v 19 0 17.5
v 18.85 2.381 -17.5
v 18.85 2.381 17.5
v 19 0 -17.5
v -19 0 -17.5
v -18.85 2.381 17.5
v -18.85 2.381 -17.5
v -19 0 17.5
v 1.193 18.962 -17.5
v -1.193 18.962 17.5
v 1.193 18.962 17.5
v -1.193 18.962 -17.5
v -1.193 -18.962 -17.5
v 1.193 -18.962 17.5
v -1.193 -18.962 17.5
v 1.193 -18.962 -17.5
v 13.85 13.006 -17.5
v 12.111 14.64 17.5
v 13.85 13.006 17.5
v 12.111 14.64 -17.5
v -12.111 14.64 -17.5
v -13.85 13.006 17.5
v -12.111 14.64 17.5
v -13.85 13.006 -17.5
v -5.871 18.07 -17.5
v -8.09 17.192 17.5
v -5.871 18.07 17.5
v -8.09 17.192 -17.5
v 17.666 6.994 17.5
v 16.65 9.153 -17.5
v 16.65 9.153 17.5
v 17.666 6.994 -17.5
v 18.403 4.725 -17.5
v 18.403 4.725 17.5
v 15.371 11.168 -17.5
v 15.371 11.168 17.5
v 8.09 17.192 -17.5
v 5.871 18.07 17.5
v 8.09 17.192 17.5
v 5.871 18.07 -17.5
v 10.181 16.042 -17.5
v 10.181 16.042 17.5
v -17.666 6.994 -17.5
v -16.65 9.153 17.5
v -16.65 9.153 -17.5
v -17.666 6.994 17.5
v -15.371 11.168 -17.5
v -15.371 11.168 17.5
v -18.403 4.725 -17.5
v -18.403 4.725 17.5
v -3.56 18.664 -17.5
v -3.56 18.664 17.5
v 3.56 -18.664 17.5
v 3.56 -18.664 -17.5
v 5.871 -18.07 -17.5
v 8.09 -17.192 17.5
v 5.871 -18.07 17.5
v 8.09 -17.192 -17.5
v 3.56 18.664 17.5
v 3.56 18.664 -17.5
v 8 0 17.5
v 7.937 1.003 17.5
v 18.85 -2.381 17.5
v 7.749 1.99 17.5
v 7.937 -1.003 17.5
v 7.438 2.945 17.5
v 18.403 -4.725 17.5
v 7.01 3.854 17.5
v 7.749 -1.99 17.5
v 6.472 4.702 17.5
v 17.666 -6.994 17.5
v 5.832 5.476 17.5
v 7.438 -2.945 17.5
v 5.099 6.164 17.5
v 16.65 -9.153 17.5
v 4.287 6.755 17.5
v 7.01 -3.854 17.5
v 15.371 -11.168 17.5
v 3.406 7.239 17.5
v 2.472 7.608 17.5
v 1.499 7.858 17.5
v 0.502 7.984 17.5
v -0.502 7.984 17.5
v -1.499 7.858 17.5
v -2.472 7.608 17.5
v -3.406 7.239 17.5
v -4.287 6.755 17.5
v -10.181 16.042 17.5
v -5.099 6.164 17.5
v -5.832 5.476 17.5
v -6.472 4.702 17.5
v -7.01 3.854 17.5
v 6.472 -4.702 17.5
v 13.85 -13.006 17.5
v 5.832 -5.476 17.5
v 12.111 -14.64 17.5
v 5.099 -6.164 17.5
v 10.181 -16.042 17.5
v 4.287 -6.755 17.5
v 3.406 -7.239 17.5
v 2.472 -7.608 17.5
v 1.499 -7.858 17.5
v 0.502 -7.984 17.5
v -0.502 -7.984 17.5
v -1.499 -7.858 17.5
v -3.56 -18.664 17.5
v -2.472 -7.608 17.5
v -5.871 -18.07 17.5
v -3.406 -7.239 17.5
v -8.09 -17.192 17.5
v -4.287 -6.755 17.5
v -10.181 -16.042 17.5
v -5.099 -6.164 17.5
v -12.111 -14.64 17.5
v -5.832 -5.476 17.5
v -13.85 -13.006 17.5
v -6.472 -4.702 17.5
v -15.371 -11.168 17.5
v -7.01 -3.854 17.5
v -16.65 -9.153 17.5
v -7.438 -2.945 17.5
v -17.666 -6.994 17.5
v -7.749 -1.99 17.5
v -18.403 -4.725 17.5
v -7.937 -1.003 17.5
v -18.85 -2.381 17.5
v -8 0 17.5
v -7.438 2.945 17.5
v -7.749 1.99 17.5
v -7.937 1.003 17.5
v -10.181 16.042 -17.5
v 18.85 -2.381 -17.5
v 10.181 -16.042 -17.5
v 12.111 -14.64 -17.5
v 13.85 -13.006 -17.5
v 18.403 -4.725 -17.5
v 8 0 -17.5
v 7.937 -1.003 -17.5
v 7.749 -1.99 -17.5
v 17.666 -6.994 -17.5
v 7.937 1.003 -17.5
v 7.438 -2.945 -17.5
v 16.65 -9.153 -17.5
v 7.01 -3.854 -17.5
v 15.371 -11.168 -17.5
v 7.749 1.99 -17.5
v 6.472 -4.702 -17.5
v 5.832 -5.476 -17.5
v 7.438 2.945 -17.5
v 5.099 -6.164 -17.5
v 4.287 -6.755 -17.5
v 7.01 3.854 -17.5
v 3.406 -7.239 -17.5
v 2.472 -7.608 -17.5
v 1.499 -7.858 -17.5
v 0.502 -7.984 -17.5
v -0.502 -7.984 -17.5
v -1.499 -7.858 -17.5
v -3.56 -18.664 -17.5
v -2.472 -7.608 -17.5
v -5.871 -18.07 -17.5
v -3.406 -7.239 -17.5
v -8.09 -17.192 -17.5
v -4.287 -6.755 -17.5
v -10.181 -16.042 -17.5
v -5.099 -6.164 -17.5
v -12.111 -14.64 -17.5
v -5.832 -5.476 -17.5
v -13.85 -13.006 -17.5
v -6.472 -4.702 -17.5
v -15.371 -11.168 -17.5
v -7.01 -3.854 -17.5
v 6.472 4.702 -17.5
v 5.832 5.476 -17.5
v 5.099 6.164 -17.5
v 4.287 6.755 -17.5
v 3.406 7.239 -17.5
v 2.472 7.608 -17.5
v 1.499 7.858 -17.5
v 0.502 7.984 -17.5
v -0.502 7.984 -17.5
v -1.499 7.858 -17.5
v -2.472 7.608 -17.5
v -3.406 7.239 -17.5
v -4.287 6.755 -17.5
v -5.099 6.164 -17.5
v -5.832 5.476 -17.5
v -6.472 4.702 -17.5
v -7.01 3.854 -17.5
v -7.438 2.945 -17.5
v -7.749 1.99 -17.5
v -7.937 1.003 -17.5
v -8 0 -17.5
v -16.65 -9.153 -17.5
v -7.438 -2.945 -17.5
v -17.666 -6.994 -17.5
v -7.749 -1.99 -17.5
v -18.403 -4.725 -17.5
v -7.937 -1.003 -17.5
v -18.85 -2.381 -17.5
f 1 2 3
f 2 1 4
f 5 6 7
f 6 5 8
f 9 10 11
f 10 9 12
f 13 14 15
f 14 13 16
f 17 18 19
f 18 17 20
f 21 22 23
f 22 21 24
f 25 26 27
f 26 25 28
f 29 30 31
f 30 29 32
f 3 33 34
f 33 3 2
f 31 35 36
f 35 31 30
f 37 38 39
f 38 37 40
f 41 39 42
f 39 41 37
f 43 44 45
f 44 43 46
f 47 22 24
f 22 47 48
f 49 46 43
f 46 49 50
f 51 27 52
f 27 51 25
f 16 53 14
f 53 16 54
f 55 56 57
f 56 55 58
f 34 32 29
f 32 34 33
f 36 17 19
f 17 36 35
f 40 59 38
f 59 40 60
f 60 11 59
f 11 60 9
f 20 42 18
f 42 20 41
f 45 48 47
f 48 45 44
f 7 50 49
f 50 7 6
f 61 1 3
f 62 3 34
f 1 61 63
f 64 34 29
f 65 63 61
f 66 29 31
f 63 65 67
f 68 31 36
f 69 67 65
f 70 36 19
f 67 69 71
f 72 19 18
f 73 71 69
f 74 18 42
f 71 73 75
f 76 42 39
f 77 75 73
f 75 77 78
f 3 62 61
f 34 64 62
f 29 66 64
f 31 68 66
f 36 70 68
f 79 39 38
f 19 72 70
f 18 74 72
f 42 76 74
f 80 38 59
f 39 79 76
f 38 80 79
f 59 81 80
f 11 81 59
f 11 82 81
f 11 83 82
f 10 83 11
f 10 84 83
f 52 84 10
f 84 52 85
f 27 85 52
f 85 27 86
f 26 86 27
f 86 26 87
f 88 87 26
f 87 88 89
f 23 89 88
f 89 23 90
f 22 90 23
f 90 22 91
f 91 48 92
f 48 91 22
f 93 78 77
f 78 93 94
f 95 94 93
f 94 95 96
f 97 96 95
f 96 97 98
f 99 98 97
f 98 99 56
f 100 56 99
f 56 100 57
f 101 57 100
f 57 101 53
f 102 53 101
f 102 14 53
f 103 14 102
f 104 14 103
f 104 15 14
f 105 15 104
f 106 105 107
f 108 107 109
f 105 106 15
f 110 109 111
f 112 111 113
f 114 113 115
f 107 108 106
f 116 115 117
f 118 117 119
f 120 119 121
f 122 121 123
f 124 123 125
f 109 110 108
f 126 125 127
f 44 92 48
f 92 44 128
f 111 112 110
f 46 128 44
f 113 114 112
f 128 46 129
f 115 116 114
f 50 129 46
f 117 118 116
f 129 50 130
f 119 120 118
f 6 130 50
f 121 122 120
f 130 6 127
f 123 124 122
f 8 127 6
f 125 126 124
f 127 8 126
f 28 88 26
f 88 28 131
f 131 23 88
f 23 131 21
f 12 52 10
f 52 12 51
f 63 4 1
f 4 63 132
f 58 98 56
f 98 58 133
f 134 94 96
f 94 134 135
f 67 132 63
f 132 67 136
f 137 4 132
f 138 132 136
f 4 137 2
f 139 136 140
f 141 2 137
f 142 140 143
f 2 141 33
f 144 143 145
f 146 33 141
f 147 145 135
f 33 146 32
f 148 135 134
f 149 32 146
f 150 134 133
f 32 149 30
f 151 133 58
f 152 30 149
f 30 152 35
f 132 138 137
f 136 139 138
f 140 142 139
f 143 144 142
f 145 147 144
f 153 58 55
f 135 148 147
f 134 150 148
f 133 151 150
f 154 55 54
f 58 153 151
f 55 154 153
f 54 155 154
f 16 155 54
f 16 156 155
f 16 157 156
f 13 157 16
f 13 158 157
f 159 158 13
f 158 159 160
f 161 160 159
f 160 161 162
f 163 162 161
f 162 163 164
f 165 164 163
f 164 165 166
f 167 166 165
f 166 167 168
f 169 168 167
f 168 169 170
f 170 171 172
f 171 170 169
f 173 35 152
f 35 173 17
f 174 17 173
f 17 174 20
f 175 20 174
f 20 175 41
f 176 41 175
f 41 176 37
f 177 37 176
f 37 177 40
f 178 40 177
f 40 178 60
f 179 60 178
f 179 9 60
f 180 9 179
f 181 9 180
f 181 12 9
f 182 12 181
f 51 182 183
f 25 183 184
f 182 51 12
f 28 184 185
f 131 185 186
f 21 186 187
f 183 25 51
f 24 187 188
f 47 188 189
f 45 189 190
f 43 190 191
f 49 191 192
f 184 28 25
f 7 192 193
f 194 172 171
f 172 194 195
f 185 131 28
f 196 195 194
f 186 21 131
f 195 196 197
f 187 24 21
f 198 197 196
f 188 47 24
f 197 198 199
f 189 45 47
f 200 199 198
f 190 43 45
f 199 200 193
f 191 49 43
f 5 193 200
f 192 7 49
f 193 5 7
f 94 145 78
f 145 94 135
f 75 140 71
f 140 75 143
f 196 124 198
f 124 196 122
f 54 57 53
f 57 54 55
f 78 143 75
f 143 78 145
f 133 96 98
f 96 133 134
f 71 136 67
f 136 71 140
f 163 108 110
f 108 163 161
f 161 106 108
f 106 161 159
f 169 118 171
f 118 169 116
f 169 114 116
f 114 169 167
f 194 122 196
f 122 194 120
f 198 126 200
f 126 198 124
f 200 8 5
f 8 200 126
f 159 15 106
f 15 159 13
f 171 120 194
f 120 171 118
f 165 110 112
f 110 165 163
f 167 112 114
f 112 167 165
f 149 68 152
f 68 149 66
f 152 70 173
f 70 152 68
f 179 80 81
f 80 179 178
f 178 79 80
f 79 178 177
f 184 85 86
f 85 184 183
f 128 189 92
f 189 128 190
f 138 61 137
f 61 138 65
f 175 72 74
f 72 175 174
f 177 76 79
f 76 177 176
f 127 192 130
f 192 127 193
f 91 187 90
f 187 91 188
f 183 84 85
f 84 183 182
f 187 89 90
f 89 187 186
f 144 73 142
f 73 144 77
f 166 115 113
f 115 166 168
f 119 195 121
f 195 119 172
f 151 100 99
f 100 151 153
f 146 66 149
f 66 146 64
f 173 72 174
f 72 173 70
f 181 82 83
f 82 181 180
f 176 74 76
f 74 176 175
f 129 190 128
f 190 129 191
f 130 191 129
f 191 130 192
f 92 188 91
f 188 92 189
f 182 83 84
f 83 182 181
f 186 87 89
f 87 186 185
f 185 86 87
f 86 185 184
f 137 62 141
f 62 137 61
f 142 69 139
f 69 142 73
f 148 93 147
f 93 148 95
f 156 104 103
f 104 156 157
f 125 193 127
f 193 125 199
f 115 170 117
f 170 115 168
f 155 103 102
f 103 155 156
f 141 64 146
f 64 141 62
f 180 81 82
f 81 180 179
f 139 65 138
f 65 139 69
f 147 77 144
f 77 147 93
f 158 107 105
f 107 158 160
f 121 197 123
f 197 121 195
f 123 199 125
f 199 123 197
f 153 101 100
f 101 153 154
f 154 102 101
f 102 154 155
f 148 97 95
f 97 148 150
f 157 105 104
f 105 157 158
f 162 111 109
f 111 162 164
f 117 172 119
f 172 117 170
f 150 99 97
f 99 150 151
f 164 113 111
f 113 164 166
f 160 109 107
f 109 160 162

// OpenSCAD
$fn = 50;


difference() {
	union() {
		translate(v = [0, 0, -17.5000000000]) {
			cylinder(h = 35, r = 19.0000000000);
		}
	}
	union() {
		translate(v = [0, 0, -100.0000000000]) {
			cylinder(h = 200, r = 8);
		}
	}
}
